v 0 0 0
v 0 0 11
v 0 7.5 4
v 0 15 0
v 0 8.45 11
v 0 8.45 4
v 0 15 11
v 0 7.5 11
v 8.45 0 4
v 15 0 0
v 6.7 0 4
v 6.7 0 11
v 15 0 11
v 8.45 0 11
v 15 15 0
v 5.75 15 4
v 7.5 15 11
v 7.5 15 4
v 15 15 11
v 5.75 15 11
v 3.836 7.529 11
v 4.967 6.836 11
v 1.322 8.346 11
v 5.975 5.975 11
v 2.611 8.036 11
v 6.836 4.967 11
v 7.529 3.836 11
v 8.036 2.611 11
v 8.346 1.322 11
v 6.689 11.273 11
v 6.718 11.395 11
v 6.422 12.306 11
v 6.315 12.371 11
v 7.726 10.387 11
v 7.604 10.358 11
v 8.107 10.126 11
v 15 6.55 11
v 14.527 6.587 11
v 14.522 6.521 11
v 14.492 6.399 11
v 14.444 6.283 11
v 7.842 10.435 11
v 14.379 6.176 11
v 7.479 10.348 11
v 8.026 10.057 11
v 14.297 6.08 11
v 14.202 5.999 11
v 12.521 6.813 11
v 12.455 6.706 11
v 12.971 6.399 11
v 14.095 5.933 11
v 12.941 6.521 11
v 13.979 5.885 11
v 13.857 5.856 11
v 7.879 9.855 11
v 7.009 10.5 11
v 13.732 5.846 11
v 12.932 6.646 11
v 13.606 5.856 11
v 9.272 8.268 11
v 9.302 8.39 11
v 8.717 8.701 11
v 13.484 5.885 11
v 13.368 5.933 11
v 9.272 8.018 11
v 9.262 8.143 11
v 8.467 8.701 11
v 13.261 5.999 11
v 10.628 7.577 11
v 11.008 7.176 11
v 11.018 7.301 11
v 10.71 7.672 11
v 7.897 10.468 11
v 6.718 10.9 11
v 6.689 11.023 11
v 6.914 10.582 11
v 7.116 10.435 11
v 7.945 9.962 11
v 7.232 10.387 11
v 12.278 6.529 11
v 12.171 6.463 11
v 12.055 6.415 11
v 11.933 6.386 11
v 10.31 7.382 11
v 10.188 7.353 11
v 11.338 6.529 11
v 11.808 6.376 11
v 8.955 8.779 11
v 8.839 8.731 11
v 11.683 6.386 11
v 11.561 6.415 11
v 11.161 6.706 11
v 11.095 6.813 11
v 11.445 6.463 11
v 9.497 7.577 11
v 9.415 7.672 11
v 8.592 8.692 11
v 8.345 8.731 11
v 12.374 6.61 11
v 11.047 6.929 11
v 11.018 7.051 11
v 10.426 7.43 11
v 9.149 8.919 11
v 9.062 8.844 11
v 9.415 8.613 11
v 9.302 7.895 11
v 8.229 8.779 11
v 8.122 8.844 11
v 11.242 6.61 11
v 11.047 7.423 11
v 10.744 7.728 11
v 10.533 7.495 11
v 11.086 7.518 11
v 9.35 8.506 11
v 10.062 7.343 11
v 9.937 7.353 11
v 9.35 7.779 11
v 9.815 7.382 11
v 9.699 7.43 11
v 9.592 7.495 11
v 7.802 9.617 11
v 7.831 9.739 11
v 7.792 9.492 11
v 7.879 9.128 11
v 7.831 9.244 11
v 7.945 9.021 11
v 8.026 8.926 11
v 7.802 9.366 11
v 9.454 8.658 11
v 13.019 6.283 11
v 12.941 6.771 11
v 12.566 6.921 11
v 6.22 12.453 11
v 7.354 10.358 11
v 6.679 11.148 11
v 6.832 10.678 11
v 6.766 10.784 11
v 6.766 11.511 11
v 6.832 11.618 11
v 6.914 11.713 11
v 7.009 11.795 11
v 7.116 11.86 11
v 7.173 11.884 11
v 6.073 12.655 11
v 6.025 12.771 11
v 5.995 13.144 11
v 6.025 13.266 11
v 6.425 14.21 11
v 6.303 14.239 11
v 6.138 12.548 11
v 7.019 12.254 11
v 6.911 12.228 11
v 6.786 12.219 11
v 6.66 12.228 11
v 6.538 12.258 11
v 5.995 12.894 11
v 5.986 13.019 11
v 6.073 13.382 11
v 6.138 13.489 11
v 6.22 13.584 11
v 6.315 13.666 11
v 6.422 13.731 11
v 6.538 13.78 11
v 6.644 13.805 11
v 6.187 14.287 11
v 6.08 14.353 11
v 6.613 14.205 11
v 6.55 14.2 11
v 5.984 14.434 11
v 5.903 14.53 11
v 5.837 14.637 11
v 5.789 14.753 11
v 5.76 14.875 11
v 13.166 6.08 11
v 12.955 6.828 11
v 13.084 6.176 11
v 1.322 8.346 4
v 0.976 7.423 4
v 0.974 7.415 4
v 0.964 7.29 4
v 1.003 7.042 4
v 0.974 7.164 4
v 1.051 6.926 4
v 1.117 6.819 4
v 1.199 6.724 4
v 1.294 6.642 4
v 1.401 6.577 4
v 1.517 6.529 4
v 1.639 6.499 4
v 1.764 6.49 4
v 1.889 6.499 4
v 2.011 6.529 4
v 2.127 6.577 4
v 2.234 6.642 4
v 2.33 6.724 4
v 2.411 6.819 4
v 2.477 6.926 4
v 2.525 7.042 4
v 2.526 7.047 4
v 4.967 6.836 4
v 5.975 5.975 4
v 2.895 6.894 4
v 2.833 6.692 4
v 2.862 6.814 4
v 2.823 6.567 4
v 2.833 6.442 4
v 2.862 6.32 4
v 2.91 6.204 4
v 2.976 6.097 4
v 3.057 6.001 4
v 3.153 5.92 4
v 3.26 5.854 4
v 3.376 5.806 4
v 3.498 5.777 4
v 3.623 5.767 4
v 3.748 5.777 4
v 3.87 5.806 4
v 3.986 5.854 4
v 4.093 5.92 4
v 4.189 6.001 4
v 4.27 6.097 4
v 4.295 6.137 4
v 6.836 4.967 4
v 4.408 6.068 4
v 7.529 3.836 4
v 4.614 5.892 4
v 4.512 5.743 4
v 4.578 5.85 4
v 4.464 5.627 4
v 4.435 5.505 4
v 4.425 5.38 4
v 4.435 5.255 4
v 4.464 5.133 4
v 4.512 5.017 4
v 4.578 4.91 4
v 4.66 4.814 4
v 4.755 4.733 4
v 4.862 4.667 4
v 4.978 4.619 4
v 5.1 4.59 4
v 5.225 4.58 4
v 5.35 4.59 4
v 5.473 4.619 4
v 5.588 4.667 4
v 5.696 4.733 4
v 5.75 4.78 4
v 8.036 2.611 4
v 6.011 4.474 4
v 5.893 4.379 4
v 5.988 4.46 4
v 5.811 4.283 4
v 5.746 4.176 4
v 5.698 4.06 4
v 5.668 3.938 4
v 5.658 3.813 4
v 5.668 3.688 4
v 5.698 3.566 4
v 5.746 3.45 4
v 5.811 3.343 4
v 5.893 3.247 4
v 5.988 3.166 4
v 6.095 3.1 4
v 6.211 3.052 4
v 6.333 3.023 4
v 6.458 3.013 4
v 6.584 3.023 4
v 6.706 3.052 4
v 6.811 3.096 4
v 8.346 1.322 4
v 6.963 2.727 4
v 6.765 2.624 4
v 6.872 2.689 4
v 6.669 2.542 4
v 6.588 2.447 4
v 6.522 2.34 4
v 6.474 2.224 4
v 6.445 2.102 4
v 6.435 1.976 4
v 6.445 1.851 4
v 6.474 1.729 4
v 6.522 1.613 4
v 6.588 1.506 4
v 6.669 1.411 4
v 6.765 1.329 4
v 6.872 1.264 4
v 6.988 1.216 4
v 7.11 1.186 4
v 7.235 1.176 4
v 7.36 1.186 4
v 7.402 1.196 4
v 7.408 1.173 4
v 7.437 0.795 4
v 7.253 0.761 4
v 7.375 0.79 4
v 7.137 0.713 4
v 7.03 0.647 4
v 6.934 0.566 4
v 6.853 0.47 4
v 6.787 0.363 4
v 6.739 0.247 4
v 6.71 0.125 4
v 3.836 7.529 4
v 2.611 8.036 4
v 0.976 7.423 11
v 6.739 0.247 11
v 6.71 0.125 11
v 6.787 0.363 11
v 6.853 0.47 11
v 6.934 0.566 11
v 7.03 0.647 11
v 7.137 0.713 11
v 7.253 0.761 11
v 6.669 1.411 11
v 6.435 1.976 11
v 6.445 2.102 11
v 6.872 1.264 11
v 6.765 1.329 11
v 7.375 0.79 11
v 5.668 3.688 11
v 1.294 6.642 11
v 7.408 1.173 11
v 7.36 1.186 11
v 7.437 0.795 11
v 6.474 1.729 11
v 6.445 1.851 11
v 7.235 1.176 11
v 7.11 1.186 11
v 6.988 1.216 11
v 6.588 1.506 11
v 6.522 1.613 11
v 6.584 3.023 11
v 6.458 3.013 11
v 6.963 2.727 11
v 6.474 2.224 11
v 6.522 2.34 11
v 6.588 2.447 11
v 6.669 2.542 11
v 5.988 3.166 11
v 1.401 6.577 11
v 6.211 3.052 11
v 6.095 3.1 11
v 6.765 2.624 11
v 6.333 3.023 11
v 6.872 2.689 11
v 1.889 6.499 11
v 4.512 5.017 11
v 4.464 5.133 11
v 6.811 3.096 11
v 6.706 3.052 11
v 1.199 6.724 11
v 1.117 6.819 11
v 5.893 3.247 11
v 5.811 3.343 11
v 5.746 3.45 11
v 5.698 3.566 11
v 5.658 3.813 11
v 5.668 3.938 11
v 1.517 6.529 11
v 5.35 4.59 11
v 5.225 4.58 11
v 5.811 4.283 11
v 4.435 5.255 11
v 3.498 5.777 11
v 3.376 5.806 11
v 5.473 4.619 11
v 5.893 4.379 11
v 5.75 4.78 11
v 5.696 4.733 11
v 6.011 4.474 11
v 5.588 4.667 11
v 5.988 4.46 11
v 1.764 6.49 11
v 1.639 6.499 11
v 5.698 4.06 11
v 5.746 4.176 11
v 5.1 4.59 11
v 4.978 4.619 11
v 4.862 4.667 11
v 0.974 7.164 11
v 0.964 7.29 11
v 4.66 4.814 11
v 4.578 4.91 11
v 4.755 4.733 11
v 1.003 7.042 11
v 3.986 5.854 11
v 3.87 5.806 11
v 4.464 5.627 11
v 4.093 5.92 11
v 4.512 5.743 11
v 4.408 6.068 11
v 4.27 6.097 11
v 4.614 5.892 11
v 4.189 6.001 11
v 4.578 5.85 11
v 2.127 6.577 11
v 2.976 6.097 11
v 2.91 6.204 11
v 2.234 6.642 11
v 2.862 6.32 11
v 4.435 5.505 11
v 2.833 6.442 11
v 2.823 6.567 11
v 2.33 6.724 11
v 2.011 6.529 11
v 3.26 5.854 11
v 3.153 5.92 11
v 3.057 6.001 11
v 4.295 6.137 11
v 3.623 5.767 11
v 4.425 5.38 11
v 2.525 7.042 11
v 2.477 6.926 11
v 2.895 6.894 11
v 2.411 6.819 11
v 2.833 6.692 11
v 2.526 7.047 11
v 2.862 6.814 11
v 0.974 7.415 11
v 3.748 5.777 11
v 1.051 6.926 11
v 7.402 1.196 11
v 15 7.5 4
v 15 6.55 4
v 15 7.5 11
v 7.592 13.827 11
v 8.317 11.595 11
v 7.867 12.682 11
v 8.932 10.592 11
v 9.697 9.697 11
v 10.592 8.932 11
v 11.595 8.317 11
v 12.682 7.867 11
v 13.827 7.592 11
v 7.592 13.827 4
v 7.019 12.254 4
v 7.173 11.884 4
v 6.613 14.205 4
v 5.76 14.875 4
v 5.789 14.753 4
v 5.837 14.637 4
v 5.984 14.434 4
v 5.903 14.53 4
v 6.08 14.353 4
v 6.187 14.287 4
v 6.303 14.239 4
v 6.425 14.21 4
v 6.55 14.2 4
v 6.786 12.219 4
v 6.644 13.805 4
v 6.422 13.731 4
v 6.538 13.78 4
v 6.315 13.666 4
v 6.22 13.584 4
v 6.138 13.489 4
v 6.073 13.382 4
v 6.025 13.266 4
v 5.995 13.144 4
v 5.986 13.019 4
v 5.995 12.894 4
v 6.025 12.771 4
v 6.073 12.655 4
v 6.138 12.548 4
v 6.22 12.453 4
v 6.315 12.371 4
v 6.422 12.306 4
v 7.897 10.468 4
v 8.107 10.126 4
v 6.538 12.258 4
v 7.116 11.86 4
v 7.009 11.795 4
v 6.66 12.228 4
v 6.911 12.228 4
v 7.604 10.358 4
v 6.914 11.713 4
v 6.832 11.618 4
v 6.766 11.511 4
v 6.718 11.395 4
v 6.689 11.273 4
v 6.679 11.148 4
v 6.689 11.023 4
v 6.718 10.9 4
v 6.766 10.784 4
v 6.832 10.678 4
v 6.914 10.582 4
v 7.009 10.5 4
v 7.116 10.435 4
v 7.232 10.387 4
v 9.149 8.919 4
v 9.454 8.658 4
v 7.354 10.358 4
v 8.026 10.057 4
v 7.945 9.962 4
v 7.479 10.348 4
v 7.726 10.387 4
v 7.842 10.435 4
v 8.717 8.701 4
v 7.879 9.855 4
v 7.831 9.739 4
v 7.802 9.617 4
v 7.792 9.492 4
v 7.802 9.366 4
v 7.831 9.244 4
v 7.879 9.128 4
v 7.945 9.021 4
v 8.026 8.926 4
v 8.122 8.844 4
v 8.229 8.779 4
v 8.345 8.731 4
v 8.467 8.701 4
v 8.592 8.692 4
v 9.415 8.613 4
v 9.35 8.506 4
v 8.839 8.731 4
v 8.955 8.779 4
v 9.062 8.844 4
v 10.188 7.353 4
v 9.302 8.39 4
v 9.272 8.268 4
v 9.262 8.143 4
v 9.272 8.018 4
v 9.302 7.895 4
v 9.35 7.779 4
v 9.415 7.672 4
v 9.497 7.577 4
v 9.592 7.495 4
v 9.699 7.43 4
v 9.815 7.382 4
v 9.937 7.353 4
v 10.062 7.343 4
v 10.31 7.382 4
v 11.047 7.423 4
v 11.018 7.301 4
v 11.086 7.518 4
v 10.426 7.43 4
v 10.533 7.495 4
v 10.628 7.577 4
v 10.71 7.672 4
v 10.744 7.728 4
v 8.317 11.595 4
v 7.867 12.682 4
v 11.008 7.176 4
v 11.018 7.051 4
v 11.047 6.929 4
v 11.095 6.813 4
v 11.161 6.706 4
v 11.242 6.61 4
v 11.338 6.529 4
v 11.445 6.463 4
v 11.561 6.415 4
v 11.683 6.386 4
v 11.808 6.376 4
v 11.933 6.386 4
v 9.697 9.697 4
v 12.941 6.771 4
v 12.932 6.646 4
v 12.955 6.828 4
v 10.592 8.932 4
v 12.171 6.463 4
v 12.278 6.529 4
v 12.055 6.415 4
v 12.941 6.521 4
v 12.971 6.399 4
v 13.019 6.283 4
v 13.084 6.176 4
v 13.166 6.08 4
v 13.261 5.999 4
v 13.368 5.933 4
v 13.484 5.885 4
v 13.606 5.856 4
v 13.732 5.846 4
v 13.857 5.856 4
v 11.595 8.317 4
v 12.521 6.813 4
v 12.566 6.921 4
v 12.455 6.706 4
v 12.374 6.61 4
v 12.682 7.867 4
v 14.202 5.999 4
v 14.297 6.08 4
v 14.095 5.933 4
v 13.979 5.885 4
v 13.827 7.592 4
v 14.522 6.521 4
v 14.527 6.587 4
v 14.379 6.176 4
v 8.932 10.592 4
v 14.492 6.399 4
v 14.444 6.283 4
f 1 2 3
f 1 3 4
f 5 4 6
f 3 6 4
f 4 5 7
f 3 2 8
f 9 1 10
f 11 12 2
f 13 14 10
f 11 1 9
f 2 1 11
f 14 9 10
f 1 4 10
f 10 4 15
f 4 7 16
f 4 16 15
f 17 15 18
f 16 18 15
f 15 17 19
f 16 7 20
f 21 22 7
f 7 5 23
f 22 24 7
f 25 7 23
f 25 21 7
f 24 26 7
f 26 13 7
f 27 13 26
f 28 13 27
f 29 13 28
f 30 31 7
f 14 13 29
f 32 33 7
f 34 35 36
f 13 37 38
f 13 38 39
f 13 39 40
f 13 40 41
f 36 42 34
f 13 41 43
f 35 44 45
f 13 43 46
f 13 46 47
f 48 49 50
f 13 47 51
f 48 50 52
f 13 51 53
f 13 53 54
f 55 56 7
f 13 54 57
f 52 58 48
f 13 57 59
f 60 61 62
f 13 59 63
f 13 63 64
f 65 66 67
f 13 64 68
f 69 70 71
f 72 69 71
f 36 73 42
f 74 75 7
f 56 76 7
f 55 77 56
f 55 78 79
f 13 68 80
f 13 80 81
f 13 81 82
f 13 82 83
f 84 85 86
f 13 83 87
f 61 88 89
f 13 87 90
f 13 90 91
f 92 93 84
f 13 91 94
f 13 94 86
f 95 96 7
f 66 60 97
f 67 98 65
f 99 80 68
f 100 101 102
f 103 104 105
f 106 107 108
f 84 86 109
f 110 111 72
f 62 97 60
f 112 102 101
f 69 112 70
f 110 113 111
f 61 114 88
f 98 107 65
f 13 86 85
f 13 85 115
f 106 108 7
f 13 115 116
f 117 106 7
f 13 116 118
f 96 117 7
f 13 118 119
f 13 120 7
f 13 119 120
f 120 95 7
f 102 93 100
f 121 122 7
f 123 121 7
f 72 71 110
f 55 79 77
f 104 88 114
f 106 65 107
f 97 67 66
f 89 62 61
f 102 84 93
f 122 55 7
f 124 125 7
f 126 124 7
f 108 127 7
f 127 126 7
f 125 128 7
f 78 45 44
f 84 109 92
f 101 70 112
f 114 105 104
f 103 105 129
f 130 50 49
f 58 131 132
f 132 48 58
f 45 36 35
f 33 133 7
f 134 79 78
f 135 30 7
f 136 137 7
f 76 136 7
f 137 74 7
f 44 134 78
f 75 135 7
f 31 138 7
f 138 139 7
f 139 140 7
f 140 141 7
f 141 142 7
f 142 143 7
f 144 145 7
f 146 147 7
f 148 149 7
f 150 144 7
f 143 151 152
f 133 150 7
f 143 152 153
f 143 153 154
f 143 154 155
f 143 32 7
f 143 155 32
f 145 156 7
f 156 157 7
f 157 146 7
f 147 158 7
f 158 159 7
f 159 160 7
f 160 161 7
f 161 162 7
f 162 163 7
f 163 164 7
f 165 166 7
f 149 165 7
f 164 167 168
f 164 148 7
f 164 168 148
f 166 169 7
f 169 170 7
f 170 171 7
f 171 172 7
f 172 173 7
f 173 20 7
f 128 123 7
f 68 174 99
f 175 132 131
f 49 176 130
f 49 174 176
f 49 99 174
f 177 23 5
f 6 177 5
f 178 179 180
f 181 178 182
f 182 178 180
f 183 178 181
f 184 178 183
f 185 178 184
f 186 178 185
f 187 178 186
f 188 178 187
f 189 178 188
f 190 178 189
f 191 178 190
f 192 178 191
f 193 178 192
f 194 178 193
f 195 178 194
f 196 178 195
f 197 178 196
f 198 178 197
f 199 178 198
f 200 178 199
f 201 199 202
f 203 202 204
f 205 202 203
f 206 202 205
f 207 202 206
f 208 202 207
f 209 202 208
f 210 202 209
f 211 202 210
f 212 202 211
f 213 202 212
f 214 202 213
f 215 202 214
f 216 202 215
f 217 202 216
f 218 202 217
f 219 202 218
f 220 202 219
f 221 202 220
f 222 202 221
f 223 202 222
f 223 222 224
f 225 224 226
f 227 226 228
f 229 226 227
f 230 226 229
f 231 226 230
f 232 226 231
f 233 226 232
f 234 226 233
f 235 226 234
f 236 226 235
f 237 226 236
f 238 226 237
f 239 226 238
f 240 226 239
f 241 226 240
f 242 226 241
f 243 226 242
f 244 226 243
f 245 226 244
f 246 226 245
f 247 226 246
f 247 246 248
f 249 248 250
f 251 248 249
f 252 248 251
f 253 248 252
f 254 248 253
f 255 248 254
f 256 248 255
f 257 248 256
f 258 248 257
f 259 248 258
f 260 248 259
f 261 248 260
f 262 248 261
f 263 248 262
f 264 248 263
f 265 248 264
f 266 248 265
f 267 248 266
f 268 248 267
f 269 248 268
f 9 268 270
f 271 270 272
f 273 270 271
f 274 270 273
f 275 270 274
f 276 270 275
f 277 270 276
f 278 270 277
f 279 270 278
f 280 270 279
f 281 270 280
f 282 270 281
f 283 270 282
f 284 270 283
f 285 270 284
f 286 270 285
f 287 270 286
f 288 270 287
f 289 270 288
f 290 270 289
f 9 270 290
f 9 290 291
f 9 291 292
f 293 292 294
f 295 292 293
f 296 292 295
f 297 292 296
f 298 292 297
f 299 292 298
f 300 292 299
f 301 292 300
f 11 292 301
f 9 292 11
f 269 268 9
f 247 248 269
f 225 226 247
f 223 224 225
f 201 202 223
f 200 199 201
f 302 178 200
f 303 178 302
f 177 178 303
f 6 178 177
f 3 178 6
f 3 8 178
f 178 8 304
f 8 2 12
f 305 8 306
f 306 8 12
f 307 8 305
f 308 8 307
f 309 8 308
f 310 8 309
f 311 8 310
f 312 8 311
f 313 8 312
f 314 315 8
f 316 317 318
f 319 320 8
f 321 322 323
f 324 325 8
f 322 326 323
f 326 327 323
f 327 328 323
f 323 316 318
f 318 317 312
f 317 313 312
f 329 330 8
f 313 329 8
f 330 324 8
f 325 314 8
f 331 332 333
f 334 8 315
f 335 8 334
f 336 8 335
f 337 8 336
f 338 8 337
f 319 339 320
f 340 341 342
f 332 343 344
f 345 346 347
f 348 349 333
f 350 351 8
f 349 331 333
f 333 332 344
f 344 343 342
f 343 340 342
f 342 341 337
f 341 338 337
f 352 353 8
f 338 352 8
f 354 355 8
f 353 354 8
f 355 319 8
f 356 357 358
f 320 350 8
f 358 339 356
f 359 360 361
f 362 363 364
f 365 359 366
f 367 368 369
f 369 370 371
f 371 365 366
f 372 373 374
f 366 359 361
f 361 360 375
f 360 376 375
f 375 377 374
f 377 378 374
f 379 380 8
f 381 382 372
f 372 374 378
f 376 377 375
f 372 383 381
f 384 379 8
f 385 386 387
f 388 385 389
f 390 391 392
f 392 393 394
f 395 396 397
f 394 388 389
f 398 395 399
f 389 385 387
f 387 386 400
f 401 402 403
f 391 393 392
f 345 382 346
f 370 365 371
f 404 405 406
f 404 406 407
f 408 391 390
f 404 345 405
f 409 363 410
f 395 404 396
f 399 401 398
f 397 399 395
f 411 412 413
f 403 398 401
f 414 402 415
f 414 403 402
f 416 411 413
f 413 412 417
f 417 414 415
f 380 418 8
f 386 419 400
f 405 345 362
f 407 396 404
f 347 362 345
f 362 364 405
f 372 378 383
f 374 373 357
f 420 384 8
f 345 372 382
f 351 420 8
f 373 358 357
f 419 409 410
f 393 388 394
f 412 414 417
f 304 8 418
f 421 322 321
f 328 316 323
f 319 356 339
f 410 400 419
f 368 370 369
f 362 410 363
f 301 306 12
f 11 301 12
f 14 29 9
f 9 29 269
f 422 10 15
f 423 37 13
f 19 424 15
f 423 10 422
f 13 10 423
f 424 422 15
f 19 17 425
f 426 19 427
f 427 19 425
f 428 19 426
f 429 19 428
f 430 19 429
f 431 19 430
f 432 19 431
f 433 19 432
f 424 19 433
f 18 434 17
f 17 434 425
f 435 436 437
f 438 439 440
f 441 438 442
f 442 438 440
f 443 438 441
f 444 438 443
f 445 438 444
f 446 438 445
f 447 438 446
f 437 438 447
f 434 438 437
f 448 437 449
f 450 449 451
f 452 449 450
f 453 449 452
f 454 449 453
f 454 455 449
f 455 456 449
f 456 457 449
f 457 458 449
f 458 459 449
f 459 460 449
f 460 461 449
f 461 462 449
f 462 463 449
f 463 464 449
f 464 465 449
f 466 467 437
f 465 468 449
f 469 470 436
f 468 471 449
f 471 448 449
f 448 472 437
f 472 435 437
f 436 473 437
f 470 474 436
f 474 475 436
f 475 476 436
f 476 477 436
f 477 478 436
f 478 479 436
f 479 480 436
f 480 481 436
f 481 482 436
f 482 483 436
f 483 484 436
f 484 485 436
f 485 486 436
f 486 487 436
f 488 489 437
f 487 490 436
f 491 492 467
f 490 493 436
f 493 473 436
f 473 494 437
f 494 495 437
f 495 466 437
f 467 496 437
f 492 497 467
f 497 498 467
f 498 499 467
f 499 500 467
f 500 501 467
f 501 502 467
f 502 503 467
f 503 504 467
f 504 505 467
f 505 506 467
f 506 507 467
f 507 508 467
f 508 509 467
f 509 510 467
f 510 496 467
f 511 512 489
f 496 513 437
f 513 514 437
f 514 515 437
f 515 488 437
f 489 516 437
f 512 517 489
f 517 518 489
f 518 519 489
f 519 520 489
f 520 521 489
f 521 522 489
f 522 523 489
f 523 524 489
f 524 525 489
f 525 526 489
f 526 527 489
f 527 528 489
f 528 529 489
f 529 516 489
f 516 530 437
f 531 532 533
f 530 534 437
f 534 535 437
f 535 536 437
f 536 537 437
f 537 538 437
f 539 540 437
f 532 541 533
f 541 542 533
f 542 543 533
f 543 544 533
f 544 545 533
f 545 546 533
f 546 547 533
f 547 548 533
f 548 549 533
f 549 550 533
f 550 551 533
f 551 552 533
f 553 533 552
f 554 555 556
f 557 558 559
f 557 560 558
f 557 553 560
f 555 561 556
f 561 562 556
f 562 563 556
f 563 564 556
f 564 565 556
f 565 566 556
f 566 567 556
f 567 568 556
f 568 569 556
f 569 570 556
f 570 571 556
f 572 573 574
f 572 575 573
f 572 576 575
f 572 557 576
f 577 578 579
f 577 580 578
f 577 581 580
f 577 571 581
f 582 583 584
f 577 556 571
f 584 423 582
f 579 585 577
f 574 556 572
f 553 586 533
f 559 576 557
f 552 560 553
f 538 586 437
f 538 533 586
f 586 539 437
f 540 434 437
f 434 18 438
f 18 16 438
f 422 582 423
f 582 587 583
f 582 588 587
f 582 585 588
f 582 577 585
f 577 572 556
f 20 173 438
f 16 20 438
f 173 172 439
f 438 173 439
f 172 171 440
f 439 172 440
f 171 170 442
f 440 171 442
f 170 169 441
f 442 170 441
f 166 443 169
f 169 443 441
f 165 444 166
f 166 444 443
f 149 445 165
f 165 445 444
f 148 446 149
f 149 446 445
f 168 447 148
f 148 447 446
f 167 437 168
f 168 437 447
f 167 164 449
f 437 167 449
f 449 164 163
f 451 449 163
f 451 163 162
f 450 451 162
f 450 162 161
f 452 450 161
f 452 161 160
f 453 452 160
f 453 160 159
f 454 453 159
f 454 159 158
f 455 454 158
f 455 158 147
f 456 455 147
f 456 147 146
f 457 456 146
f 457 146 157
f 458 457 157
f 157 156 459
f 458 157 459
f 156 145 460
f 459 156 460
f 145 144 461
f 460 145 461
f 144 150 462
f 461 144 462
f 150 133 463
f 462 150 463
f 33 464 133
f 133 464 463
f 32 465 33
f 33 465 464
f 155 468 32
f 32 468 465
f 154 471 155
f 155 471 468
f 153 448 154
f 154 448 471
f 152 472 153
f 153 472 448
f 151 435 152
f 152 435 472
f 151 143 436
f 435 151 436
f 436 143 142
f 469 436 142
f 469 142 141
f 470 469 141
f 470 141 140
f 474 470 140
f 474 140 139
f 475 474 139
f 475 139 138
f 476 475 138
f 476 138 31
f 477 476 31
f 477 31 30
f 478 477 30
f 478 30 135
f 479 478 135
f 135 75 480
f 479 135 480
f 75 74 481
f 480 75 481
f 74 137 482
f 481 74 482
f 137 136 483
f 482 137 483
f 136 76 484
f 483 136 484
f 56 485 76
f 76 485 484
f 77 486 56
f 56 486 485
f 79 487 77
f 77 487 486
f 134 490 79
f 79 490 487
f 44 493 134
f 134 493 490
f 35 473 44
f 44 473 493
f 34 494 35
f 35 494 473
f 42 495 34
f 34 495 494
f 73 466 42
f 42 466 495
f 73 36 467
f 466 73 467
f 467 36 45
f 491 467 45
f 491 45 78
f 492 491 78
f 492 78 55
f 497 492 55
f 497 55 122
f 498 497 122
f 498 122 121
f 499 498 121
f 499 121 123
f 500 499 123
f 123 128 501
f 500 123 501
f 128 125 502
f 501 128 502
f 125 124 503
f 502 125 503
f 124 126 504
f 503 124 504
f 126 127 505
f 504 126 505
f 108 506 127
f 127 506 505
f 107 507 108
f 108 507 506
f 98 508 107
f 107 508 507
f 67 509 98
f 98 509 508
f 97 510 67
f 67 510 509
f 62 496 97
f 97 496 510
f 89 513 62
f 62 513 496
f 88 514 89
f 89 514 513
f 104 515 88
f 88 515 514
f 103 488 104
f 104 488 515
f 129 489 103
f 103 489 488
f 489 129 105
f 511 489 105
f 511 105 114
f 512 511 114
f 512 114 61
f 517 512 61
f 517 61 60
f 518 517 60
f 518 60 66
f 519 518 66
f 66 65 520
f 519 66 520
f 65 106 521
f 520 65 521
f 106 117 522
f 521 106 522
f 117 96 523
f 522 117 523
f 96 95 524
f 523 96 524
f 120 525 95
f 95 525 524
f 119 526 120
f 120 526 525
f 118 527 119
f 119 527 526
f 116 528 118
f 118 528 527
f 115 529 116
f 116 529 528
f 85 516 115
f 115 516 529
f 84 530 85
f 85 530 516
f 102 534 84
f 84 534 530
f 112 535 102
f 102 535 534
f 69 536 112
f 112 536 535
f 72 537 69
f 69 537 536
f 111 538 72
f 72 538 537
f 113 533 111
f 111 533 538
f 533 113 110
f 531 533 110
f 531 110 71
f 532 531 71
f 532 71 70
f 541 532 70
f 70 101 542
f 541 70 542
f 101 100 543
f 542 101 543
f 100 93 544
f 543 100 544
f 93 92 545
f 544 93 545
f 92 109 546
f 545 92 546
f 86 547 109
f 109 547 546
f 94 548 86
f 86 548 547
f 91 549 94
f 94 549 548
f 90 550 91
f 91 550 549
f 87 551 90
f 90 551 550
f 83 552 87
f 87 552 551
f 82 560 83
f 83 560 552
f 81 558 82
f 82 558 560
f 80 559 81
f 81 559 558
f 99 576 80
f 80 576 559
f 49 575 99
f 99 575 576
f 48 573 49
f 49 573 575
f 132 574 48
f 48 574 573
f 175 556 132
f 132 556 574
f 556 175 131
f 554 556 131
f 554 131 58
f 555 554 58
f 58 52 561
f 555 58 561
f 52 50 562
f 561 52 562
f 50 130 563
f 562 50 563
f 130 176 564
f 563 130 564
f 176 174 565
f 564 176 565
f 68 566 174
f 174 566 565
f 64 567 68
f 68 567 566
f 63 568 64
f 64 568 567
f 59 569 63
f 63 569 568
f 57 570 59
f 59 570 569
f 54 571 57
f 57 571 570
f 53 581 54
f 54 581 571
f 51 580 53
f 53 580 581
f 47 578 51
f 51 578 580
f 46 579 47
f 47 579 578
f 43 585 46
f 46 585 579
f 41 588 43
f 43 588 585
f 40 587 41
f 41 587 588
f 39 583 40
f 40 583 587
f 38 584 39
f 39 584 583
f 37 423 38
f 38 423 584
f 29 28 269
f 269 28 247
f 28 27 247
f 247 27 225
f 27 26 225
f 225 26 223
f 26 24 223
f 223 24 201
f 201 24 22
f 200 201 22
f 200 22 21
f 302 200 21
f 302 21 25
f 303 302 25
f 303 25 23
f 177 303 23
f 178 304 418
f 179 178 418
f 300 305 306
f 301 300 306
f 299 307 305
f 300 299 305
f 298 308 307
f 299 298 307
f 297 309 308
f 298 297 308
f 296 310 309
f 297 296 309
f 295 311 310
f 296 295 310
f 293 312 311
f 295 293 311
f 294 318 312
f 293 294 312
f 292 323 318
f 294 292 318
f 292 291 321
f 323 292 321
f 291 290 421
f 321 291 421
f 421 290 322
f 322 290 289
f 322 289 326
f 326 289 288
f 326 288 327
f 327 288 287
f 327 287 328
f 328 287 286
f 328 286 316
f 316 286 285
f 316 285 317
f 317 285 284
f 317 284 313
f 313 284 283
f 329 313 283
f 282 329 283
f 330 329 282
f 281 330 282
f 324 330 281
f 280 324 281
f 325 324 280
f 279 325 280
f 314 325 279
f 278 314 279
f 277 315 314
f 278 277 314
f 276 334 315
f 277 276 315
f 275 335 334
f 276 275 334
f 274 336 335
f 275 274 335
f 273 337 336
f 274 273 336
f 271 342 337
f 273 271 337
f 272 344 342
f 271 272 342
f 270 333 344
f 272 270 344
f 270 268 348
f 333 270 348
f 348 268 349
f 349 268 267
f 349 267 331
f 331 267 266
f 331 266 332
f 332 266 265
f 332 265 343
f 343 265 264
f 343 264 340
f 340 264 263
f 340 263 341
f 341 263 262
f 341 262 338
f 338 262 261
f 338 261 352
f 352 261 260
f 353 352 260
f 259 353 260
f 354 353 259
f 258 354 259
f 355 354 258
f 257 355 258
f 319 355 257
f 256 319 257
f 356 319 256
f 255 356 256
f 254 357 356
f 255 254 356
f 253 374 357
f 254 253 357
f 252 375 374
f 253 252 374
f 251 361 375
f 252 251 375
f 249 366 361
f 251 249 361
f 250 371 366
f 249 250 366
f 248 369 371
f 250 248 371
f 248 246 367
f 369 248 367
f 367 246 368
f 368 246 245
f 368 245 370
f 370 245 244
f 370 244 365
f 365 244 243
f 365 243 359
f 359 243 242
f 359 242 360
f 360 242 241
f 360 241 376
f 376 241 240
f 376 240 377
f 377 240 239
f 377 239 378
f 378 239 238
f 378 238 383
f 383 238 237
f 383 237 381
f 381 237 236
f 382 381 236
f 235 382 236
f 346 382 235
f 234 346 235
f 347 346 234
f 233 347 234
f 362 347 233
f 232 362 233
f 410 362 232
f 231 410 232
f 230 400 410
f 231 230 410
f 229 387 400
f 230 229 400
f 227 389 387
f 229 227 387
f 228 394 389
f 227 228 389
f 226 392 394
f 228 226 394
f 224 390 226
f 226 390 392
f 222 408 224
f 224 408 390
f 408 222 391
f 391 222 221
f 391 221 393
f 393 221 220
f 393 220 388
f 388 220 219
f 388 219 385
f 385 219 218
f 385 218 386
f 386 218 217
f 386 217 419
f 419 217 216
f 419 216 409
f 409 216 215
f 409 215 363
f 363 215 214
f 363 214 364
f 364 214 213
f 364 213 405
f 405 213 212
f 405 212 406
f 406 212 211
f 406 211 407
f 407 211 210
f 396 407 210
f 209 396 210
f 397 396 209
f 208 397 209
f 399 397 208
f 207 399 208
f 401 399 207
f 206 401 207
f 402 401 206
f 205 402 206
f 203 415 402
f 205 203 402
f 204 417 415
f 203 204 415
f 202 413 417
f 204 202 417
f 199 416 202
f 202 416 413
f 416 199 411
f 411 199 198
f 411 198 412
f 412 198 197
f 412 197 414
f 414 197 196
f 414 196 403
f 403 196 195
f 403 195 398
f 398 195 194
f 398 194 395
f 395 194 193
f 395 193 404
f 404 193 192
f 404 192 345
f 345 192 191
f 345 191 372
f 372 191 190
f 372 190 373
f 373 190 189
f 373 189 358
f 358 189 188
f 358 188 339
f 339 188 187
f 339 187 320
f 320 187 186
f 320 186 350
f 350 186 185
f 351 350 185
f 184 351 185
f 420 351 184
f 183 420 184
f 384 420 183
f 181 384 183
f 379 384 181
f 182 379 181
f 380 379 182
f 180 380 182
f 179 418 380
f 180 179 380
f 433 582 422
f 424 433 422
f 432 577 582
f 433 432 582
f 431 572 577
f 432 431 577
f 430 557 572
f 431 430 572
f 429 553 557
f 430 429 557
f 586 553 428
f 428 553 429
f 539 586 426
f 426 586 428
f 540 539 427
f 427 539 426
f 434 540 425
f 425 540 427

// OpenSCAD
// file: configuration.scad
// Increase this if your slicer or printer make holes too tight.
extra_radius = 0.1;

// OD = outside diameter, corner to corner.
m3_nut_od = 6.1;
m3_nut_radius = m3_nut_od/2 + 0.2 + extra_radius;
m3_washer_radius = 3.5 + extra_radius;

// Major diameter of metric 3mm thread.
m3_major = 2.85;
m3_radius = m3_major/2 + extra_radius;
m3_wide_radius = m3_major/2 + extra_radius + 0.2;

// NEMA17 stepper motors.
motor_shaft_diameter = 5;
motor_shaft_radius = motor_shaft_diameter/2 + extra_radius;

// Frame brackets. M3x8mm screws work best with 3.6 mm brackets.
thickness = 3.6;

// OpenBeam or Misumi. Currently only 15x15 mm, but there is a plan
// to make models more parametric and allow 20x20 mm in the future.
extrusion = 15;

// Placement for the NEMA17 stepper motors.
motor_offset = 44;
motor_length = 47;

probe_tunnel_radius = 1.25 + extra_radius;
probe_excentricity = 5;
// main file
include <configuration.scad>;

// Belt parameters
belt_width = 6;                    // width of the belt, typically 6 (mm)
belt_thickness = 1.0 - 0.05;       // slightly less than actual belt thickness for compression fit (mm)           
belt_pitch = 2.0;                  // tooth pitch on the belt, 2 for GT2 (mm)
tooth_radius = 0.8;                // belt tooth radius, 0.8 for GT2 (mm)

// Overall clamp dimensions
clamp_width = 15;
clamp_length = 15;
clamp_base = 4;

path_height = belt_width + 1;
clamp_thickness = path_height+clamp_base;

$fn = 40;

clamp_inside_radius = clamp_width/2;
clamp_outside_radius = clamp_inside_radius+belt_thickness;
dTheta_inside = belt_pitch/clamp_inside_radius;
dTheta_outside = belt_pitch/clamp_outside_radius;
pi = 3.14159;

difference() {
  cube([clamp_width, clamp_length, clamp_thickness]);

  // Belt paths
  difference() {
    translate([0,0,clamp_base]) cylinder(h=path_height,r=clamp_outside_radius);
    translate([0,0,clamp_base]) cylinder(h=path_height,r=clamp_inside_radius);
  }
  difference() {
    translate([clamp_width,clamp_length,clamp_base]) cylinder(h=path_height,r=clamp_outside_radius);
    translate([clamp_width,clamp_length,clamp_base]) cylinder(h=path_height,r=clamp_inside_radius);
  }

  // Belt teeth
  for (theta = [0:dTheta_inside:pi/2]) {
    translate([clamp_inside_radius*cos(theta*180/pi),clamp_inside_radius*sin(theta*180/pi),clamp_base]) cylinder(r=tooth_radius, h=path_height);
  }
  for (theta = [0:dTheta_outside:pi/2]) {
    translate([clamp_width-clamp_outside_radius*cos(theta*180/pi),clamp_length-clamp_outside_radius*sin(theta*180/pi),clamp_base]) cylinder(r=tooth_radius, h=path_height);
  }


};
